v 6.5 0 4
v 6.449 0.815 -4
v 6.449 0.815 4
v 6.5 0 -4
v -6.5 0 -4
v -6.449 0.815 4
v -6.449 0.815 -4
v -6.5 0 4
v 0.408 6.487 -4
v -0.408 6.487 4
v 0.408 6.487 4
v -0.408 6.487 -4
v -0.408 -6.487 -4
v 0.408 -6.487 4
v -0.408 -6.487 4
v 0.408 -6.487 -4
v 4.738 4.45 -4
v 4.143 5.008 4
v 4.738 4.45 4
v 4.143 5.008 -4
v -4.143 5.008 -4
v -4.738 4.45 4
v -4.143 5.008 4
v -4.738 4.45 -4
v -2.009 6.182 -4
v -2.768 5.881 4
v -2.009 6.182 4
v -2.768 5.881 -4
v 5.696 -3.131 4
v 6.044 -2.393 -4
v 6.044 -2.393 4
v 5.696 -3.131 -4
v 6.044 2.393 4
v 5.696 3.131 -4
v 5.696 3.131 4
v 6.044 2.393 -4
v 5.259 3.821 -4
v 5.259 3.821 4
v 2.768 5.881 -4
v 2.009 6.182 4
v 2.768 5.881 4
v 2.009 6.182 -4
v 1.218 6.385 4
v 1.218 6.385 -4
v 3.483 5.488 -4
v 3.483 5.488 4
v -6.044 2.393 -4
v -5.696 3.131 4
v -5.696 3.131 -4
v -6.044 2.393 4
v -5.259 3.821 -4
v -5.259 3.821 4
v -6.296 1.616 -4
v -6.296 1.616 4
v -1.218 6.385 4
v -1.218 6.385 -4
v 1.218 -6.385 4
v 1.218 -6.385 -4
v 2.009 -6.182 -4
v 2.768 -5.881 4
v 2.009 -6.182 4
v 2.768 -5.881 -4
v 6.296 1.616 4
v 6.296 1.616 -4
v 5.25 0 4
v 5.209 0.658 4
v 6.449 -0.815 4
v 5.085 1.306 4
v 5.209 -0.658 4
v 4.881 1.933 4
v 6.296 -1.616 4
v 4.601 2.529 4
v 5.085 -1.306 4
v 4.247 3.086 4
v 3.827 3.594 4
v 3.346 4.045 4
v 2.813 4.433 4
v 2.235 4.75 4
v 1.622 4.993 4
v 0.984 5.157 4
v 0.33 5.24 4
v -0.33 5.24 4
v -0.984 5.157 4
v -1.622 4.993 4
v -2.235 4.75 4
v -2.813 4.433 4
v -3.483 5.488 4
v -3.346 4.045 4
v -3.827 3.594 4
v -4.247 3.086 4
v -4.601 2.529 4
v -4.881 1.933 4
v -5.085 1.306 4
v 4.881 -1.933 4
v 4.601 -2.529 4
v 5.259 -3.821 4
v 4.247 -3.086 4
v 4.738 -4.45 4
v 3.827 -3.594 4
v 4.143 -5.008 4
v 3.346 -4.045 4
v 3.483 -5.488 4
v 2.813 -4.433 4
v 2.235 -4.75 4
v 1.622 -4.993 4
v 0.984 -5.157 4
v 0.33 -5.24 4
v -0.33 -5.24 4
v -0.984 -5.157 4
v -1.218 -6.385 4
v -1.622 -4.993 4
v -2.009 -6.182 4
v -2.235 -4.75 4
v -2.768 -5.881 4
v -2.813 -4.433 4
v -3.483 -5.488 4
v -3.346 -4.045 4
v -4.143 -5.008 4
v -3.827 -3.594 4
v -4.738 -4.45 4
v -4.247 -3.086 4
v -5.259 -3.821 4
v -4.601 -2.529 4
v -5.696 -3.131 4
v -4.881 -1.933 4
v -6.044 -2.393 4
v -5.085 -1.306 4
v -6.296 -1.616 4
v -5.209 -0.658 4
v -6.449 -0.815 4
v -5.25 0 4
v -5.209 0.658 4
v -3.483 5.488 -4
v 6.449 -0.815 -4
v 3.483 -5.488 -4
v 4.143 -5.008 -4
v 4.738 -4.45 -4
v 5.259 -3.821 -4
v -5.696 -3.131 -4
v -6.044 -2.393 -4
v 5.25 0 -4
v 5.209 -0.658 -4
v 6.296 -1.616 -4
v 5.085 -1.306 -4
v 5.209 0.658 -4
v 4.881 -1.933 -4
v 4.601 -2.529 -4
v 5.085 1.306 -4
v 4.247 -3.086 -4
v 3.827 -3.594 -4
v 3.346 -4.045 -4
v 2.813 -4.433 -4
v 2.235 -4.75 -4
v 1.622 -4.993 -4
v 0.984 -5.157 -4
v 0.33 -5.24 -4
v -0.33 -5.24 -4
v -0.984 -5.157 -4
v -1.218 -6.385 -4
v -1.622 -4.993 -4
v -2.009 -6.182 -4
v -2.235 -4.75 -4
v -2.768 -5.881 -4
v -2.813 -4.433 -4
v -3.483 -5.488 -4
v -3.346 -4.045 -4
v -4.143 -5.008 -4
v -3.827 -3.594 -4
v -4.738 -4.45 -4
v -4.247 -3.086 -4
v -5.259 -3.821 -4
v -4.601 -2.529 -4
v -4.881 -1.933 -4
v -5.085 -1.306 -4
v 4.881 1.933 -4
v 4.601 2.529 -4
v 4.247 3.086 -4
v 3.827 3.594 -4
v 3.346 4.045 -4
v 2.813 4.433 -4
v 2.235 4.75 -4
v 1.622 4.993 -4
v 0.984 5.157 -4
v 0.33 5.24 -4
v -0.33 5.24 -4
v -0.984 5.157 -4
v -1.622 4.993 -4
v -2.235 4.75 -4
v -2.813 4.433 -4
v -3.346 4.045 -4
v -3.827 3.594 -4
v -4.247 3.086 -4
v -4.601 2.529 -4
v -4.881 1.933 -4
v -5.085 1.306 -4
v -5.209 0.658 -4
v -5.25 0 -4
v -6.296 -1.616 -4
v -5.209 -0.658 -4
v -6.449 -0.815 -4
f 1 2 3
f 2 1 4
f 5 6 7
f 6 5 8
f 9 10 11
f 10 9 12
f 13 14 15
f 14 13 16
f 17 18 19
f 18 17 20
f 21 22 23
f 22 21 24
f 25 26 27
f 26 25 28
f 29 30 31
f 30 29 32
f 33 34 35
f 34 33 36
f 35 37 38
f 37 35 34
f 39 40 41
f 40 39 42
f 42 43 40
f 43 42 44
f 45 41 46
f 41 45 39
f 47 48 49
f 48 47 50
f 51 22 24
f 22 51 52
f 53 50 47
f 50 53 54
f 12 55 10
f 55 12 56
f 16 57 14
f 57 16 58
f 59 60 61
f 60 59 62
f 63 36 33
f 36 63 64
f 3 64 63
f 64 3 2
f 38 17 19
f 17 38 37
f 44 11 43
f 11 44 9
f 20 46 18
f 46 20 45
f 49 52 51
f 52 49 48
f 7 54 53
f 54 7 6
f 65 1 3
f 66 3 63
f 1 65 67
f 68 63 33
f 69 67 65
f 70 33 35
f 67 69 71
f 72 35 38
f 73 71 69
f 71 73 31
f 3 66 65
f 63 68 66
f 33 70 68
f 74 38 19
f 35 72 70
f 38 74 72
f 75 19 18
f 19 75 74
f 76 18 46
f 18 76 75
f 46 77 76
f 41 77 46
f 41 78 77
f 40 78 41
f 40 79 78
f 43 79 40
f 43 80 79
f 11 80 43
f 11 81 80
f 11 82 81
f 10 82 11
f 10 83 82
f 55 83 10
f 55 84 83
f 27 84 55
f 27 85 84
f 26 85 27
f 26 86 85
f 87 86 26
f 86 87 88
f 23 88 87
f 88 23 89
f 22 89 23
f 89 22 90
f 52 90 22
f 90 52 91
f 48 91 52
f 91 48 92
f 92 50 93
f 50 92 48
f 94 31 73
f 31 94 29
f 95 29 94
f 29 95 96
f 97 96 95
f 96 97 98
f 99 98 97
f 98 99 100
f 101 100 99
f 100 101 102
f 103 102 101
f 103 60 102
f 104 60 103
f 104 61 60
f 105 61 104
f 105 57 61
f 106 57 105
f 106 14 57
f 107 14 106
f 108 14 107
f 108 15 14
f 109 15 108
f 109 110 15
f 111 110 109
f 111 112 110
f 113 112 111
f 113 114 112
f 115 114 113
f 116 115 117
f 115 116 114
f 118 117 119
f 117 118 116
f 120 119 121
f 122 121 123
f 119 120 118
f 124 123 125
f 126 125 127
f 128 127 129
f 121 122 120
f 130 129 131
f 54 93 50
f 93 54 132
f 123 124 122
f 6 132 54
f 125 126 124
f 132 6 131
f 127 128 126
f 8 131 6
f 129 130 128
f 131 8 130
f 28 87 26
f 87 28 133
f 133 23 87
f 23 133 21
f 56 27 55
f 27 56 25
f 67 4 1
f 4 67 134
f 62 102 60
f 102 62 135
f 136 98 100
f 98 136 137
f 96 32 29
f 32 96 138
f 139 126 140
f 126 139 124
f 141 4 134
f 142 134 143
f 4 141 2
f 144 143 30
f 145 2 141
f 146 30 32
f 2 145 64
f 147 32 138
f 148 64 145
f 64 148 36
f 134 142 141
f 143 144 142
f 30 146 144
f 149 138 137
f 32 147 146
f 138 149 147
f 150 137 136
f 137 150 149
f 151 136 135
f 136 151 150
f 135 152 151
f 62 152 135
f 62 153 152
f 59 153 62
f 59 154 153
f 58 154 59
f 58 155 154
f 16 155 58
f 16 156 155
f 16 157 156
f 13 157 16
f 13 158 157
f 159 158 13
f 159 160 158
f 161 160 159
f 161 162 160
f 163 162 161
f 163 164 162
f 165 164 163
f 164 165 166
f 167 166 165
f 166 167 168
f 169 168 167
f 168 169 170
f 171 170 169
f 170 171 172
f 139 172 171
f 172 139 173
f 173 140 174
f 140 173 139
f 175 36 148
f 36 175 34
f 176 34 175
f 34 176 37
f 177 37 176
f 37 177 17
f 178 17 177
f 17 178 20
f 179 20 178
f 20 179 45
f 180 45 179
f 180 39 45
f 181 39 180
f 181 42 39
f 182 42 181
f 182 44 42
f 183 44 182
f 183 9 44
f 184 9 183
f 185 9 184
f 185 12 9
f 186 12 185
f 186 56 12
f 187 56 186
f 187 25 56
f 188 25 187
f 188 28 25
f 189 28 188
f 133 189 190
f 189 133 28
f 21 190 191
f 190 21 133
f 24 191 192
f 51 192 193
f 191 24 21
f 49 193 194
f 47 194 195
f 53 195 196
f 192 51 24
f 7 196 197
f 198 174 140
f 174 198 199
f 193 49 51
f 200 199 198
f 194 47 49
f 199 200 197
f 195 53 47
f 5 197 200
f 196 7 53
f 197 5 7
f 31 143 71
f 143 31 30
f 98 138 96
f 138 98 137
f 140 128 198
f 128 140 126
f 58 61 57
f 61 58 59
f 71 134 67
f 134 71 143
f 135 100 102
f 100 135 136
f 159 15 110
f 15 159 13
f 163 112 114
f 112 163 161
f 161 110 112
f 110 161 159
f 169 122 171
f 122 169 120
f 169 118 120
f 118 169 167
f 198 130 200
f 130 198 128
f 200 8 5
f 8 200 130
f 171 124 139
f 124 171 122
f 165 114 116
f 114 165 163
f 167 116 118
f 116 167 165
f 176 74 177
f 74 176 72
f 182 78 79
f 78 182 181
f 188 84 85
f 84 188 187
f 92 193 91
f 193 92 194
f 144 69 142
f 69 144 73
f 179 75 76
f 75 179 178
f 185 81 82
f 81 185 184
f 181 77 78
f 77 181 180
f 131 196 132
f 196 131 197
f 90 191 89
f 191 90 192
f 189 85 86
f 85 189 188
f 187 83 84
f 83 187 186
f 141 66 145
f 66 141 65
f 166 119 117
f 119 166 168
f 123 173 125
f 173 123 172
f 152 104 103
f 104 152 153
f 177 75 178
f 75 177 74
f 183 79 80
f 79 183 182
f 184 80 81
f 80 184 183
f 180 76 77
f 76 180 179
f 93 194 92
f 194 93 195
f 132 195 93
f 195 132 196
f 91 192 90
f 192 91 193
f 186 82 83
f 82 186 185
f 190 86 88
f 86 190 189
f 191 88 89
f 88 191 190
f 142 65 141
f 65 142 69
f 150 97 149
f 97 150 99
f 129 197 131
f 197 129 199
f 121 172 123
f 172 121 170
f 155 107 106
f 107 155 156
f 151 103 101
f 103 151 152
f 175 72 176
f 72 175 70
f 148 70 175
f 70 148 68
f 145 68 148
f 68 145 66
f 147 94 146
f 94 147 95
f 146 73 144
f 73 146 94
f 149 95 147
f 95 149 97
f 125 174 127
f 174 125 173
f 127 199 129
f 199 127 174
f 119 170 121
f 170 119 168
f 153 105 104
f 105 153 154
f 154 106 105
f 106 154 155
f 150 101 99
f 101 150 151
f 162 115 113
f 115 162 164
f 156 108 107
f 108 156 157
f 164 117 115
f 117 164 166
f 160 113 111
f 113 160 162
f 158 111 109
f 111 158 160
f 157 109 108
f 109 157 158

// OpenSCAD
$fn = 50;


difference() {
	union() {
		translate(v = [0, 0, -4.0000000000]) {
			cylinder(h = 8, r = 6.5000000000);
		}
	}
	union() {
		translate(v = [0, 0, -100.0000000000]) {
			cylinder(h = 200, r = 5.2500000000);
		}
	}
}
